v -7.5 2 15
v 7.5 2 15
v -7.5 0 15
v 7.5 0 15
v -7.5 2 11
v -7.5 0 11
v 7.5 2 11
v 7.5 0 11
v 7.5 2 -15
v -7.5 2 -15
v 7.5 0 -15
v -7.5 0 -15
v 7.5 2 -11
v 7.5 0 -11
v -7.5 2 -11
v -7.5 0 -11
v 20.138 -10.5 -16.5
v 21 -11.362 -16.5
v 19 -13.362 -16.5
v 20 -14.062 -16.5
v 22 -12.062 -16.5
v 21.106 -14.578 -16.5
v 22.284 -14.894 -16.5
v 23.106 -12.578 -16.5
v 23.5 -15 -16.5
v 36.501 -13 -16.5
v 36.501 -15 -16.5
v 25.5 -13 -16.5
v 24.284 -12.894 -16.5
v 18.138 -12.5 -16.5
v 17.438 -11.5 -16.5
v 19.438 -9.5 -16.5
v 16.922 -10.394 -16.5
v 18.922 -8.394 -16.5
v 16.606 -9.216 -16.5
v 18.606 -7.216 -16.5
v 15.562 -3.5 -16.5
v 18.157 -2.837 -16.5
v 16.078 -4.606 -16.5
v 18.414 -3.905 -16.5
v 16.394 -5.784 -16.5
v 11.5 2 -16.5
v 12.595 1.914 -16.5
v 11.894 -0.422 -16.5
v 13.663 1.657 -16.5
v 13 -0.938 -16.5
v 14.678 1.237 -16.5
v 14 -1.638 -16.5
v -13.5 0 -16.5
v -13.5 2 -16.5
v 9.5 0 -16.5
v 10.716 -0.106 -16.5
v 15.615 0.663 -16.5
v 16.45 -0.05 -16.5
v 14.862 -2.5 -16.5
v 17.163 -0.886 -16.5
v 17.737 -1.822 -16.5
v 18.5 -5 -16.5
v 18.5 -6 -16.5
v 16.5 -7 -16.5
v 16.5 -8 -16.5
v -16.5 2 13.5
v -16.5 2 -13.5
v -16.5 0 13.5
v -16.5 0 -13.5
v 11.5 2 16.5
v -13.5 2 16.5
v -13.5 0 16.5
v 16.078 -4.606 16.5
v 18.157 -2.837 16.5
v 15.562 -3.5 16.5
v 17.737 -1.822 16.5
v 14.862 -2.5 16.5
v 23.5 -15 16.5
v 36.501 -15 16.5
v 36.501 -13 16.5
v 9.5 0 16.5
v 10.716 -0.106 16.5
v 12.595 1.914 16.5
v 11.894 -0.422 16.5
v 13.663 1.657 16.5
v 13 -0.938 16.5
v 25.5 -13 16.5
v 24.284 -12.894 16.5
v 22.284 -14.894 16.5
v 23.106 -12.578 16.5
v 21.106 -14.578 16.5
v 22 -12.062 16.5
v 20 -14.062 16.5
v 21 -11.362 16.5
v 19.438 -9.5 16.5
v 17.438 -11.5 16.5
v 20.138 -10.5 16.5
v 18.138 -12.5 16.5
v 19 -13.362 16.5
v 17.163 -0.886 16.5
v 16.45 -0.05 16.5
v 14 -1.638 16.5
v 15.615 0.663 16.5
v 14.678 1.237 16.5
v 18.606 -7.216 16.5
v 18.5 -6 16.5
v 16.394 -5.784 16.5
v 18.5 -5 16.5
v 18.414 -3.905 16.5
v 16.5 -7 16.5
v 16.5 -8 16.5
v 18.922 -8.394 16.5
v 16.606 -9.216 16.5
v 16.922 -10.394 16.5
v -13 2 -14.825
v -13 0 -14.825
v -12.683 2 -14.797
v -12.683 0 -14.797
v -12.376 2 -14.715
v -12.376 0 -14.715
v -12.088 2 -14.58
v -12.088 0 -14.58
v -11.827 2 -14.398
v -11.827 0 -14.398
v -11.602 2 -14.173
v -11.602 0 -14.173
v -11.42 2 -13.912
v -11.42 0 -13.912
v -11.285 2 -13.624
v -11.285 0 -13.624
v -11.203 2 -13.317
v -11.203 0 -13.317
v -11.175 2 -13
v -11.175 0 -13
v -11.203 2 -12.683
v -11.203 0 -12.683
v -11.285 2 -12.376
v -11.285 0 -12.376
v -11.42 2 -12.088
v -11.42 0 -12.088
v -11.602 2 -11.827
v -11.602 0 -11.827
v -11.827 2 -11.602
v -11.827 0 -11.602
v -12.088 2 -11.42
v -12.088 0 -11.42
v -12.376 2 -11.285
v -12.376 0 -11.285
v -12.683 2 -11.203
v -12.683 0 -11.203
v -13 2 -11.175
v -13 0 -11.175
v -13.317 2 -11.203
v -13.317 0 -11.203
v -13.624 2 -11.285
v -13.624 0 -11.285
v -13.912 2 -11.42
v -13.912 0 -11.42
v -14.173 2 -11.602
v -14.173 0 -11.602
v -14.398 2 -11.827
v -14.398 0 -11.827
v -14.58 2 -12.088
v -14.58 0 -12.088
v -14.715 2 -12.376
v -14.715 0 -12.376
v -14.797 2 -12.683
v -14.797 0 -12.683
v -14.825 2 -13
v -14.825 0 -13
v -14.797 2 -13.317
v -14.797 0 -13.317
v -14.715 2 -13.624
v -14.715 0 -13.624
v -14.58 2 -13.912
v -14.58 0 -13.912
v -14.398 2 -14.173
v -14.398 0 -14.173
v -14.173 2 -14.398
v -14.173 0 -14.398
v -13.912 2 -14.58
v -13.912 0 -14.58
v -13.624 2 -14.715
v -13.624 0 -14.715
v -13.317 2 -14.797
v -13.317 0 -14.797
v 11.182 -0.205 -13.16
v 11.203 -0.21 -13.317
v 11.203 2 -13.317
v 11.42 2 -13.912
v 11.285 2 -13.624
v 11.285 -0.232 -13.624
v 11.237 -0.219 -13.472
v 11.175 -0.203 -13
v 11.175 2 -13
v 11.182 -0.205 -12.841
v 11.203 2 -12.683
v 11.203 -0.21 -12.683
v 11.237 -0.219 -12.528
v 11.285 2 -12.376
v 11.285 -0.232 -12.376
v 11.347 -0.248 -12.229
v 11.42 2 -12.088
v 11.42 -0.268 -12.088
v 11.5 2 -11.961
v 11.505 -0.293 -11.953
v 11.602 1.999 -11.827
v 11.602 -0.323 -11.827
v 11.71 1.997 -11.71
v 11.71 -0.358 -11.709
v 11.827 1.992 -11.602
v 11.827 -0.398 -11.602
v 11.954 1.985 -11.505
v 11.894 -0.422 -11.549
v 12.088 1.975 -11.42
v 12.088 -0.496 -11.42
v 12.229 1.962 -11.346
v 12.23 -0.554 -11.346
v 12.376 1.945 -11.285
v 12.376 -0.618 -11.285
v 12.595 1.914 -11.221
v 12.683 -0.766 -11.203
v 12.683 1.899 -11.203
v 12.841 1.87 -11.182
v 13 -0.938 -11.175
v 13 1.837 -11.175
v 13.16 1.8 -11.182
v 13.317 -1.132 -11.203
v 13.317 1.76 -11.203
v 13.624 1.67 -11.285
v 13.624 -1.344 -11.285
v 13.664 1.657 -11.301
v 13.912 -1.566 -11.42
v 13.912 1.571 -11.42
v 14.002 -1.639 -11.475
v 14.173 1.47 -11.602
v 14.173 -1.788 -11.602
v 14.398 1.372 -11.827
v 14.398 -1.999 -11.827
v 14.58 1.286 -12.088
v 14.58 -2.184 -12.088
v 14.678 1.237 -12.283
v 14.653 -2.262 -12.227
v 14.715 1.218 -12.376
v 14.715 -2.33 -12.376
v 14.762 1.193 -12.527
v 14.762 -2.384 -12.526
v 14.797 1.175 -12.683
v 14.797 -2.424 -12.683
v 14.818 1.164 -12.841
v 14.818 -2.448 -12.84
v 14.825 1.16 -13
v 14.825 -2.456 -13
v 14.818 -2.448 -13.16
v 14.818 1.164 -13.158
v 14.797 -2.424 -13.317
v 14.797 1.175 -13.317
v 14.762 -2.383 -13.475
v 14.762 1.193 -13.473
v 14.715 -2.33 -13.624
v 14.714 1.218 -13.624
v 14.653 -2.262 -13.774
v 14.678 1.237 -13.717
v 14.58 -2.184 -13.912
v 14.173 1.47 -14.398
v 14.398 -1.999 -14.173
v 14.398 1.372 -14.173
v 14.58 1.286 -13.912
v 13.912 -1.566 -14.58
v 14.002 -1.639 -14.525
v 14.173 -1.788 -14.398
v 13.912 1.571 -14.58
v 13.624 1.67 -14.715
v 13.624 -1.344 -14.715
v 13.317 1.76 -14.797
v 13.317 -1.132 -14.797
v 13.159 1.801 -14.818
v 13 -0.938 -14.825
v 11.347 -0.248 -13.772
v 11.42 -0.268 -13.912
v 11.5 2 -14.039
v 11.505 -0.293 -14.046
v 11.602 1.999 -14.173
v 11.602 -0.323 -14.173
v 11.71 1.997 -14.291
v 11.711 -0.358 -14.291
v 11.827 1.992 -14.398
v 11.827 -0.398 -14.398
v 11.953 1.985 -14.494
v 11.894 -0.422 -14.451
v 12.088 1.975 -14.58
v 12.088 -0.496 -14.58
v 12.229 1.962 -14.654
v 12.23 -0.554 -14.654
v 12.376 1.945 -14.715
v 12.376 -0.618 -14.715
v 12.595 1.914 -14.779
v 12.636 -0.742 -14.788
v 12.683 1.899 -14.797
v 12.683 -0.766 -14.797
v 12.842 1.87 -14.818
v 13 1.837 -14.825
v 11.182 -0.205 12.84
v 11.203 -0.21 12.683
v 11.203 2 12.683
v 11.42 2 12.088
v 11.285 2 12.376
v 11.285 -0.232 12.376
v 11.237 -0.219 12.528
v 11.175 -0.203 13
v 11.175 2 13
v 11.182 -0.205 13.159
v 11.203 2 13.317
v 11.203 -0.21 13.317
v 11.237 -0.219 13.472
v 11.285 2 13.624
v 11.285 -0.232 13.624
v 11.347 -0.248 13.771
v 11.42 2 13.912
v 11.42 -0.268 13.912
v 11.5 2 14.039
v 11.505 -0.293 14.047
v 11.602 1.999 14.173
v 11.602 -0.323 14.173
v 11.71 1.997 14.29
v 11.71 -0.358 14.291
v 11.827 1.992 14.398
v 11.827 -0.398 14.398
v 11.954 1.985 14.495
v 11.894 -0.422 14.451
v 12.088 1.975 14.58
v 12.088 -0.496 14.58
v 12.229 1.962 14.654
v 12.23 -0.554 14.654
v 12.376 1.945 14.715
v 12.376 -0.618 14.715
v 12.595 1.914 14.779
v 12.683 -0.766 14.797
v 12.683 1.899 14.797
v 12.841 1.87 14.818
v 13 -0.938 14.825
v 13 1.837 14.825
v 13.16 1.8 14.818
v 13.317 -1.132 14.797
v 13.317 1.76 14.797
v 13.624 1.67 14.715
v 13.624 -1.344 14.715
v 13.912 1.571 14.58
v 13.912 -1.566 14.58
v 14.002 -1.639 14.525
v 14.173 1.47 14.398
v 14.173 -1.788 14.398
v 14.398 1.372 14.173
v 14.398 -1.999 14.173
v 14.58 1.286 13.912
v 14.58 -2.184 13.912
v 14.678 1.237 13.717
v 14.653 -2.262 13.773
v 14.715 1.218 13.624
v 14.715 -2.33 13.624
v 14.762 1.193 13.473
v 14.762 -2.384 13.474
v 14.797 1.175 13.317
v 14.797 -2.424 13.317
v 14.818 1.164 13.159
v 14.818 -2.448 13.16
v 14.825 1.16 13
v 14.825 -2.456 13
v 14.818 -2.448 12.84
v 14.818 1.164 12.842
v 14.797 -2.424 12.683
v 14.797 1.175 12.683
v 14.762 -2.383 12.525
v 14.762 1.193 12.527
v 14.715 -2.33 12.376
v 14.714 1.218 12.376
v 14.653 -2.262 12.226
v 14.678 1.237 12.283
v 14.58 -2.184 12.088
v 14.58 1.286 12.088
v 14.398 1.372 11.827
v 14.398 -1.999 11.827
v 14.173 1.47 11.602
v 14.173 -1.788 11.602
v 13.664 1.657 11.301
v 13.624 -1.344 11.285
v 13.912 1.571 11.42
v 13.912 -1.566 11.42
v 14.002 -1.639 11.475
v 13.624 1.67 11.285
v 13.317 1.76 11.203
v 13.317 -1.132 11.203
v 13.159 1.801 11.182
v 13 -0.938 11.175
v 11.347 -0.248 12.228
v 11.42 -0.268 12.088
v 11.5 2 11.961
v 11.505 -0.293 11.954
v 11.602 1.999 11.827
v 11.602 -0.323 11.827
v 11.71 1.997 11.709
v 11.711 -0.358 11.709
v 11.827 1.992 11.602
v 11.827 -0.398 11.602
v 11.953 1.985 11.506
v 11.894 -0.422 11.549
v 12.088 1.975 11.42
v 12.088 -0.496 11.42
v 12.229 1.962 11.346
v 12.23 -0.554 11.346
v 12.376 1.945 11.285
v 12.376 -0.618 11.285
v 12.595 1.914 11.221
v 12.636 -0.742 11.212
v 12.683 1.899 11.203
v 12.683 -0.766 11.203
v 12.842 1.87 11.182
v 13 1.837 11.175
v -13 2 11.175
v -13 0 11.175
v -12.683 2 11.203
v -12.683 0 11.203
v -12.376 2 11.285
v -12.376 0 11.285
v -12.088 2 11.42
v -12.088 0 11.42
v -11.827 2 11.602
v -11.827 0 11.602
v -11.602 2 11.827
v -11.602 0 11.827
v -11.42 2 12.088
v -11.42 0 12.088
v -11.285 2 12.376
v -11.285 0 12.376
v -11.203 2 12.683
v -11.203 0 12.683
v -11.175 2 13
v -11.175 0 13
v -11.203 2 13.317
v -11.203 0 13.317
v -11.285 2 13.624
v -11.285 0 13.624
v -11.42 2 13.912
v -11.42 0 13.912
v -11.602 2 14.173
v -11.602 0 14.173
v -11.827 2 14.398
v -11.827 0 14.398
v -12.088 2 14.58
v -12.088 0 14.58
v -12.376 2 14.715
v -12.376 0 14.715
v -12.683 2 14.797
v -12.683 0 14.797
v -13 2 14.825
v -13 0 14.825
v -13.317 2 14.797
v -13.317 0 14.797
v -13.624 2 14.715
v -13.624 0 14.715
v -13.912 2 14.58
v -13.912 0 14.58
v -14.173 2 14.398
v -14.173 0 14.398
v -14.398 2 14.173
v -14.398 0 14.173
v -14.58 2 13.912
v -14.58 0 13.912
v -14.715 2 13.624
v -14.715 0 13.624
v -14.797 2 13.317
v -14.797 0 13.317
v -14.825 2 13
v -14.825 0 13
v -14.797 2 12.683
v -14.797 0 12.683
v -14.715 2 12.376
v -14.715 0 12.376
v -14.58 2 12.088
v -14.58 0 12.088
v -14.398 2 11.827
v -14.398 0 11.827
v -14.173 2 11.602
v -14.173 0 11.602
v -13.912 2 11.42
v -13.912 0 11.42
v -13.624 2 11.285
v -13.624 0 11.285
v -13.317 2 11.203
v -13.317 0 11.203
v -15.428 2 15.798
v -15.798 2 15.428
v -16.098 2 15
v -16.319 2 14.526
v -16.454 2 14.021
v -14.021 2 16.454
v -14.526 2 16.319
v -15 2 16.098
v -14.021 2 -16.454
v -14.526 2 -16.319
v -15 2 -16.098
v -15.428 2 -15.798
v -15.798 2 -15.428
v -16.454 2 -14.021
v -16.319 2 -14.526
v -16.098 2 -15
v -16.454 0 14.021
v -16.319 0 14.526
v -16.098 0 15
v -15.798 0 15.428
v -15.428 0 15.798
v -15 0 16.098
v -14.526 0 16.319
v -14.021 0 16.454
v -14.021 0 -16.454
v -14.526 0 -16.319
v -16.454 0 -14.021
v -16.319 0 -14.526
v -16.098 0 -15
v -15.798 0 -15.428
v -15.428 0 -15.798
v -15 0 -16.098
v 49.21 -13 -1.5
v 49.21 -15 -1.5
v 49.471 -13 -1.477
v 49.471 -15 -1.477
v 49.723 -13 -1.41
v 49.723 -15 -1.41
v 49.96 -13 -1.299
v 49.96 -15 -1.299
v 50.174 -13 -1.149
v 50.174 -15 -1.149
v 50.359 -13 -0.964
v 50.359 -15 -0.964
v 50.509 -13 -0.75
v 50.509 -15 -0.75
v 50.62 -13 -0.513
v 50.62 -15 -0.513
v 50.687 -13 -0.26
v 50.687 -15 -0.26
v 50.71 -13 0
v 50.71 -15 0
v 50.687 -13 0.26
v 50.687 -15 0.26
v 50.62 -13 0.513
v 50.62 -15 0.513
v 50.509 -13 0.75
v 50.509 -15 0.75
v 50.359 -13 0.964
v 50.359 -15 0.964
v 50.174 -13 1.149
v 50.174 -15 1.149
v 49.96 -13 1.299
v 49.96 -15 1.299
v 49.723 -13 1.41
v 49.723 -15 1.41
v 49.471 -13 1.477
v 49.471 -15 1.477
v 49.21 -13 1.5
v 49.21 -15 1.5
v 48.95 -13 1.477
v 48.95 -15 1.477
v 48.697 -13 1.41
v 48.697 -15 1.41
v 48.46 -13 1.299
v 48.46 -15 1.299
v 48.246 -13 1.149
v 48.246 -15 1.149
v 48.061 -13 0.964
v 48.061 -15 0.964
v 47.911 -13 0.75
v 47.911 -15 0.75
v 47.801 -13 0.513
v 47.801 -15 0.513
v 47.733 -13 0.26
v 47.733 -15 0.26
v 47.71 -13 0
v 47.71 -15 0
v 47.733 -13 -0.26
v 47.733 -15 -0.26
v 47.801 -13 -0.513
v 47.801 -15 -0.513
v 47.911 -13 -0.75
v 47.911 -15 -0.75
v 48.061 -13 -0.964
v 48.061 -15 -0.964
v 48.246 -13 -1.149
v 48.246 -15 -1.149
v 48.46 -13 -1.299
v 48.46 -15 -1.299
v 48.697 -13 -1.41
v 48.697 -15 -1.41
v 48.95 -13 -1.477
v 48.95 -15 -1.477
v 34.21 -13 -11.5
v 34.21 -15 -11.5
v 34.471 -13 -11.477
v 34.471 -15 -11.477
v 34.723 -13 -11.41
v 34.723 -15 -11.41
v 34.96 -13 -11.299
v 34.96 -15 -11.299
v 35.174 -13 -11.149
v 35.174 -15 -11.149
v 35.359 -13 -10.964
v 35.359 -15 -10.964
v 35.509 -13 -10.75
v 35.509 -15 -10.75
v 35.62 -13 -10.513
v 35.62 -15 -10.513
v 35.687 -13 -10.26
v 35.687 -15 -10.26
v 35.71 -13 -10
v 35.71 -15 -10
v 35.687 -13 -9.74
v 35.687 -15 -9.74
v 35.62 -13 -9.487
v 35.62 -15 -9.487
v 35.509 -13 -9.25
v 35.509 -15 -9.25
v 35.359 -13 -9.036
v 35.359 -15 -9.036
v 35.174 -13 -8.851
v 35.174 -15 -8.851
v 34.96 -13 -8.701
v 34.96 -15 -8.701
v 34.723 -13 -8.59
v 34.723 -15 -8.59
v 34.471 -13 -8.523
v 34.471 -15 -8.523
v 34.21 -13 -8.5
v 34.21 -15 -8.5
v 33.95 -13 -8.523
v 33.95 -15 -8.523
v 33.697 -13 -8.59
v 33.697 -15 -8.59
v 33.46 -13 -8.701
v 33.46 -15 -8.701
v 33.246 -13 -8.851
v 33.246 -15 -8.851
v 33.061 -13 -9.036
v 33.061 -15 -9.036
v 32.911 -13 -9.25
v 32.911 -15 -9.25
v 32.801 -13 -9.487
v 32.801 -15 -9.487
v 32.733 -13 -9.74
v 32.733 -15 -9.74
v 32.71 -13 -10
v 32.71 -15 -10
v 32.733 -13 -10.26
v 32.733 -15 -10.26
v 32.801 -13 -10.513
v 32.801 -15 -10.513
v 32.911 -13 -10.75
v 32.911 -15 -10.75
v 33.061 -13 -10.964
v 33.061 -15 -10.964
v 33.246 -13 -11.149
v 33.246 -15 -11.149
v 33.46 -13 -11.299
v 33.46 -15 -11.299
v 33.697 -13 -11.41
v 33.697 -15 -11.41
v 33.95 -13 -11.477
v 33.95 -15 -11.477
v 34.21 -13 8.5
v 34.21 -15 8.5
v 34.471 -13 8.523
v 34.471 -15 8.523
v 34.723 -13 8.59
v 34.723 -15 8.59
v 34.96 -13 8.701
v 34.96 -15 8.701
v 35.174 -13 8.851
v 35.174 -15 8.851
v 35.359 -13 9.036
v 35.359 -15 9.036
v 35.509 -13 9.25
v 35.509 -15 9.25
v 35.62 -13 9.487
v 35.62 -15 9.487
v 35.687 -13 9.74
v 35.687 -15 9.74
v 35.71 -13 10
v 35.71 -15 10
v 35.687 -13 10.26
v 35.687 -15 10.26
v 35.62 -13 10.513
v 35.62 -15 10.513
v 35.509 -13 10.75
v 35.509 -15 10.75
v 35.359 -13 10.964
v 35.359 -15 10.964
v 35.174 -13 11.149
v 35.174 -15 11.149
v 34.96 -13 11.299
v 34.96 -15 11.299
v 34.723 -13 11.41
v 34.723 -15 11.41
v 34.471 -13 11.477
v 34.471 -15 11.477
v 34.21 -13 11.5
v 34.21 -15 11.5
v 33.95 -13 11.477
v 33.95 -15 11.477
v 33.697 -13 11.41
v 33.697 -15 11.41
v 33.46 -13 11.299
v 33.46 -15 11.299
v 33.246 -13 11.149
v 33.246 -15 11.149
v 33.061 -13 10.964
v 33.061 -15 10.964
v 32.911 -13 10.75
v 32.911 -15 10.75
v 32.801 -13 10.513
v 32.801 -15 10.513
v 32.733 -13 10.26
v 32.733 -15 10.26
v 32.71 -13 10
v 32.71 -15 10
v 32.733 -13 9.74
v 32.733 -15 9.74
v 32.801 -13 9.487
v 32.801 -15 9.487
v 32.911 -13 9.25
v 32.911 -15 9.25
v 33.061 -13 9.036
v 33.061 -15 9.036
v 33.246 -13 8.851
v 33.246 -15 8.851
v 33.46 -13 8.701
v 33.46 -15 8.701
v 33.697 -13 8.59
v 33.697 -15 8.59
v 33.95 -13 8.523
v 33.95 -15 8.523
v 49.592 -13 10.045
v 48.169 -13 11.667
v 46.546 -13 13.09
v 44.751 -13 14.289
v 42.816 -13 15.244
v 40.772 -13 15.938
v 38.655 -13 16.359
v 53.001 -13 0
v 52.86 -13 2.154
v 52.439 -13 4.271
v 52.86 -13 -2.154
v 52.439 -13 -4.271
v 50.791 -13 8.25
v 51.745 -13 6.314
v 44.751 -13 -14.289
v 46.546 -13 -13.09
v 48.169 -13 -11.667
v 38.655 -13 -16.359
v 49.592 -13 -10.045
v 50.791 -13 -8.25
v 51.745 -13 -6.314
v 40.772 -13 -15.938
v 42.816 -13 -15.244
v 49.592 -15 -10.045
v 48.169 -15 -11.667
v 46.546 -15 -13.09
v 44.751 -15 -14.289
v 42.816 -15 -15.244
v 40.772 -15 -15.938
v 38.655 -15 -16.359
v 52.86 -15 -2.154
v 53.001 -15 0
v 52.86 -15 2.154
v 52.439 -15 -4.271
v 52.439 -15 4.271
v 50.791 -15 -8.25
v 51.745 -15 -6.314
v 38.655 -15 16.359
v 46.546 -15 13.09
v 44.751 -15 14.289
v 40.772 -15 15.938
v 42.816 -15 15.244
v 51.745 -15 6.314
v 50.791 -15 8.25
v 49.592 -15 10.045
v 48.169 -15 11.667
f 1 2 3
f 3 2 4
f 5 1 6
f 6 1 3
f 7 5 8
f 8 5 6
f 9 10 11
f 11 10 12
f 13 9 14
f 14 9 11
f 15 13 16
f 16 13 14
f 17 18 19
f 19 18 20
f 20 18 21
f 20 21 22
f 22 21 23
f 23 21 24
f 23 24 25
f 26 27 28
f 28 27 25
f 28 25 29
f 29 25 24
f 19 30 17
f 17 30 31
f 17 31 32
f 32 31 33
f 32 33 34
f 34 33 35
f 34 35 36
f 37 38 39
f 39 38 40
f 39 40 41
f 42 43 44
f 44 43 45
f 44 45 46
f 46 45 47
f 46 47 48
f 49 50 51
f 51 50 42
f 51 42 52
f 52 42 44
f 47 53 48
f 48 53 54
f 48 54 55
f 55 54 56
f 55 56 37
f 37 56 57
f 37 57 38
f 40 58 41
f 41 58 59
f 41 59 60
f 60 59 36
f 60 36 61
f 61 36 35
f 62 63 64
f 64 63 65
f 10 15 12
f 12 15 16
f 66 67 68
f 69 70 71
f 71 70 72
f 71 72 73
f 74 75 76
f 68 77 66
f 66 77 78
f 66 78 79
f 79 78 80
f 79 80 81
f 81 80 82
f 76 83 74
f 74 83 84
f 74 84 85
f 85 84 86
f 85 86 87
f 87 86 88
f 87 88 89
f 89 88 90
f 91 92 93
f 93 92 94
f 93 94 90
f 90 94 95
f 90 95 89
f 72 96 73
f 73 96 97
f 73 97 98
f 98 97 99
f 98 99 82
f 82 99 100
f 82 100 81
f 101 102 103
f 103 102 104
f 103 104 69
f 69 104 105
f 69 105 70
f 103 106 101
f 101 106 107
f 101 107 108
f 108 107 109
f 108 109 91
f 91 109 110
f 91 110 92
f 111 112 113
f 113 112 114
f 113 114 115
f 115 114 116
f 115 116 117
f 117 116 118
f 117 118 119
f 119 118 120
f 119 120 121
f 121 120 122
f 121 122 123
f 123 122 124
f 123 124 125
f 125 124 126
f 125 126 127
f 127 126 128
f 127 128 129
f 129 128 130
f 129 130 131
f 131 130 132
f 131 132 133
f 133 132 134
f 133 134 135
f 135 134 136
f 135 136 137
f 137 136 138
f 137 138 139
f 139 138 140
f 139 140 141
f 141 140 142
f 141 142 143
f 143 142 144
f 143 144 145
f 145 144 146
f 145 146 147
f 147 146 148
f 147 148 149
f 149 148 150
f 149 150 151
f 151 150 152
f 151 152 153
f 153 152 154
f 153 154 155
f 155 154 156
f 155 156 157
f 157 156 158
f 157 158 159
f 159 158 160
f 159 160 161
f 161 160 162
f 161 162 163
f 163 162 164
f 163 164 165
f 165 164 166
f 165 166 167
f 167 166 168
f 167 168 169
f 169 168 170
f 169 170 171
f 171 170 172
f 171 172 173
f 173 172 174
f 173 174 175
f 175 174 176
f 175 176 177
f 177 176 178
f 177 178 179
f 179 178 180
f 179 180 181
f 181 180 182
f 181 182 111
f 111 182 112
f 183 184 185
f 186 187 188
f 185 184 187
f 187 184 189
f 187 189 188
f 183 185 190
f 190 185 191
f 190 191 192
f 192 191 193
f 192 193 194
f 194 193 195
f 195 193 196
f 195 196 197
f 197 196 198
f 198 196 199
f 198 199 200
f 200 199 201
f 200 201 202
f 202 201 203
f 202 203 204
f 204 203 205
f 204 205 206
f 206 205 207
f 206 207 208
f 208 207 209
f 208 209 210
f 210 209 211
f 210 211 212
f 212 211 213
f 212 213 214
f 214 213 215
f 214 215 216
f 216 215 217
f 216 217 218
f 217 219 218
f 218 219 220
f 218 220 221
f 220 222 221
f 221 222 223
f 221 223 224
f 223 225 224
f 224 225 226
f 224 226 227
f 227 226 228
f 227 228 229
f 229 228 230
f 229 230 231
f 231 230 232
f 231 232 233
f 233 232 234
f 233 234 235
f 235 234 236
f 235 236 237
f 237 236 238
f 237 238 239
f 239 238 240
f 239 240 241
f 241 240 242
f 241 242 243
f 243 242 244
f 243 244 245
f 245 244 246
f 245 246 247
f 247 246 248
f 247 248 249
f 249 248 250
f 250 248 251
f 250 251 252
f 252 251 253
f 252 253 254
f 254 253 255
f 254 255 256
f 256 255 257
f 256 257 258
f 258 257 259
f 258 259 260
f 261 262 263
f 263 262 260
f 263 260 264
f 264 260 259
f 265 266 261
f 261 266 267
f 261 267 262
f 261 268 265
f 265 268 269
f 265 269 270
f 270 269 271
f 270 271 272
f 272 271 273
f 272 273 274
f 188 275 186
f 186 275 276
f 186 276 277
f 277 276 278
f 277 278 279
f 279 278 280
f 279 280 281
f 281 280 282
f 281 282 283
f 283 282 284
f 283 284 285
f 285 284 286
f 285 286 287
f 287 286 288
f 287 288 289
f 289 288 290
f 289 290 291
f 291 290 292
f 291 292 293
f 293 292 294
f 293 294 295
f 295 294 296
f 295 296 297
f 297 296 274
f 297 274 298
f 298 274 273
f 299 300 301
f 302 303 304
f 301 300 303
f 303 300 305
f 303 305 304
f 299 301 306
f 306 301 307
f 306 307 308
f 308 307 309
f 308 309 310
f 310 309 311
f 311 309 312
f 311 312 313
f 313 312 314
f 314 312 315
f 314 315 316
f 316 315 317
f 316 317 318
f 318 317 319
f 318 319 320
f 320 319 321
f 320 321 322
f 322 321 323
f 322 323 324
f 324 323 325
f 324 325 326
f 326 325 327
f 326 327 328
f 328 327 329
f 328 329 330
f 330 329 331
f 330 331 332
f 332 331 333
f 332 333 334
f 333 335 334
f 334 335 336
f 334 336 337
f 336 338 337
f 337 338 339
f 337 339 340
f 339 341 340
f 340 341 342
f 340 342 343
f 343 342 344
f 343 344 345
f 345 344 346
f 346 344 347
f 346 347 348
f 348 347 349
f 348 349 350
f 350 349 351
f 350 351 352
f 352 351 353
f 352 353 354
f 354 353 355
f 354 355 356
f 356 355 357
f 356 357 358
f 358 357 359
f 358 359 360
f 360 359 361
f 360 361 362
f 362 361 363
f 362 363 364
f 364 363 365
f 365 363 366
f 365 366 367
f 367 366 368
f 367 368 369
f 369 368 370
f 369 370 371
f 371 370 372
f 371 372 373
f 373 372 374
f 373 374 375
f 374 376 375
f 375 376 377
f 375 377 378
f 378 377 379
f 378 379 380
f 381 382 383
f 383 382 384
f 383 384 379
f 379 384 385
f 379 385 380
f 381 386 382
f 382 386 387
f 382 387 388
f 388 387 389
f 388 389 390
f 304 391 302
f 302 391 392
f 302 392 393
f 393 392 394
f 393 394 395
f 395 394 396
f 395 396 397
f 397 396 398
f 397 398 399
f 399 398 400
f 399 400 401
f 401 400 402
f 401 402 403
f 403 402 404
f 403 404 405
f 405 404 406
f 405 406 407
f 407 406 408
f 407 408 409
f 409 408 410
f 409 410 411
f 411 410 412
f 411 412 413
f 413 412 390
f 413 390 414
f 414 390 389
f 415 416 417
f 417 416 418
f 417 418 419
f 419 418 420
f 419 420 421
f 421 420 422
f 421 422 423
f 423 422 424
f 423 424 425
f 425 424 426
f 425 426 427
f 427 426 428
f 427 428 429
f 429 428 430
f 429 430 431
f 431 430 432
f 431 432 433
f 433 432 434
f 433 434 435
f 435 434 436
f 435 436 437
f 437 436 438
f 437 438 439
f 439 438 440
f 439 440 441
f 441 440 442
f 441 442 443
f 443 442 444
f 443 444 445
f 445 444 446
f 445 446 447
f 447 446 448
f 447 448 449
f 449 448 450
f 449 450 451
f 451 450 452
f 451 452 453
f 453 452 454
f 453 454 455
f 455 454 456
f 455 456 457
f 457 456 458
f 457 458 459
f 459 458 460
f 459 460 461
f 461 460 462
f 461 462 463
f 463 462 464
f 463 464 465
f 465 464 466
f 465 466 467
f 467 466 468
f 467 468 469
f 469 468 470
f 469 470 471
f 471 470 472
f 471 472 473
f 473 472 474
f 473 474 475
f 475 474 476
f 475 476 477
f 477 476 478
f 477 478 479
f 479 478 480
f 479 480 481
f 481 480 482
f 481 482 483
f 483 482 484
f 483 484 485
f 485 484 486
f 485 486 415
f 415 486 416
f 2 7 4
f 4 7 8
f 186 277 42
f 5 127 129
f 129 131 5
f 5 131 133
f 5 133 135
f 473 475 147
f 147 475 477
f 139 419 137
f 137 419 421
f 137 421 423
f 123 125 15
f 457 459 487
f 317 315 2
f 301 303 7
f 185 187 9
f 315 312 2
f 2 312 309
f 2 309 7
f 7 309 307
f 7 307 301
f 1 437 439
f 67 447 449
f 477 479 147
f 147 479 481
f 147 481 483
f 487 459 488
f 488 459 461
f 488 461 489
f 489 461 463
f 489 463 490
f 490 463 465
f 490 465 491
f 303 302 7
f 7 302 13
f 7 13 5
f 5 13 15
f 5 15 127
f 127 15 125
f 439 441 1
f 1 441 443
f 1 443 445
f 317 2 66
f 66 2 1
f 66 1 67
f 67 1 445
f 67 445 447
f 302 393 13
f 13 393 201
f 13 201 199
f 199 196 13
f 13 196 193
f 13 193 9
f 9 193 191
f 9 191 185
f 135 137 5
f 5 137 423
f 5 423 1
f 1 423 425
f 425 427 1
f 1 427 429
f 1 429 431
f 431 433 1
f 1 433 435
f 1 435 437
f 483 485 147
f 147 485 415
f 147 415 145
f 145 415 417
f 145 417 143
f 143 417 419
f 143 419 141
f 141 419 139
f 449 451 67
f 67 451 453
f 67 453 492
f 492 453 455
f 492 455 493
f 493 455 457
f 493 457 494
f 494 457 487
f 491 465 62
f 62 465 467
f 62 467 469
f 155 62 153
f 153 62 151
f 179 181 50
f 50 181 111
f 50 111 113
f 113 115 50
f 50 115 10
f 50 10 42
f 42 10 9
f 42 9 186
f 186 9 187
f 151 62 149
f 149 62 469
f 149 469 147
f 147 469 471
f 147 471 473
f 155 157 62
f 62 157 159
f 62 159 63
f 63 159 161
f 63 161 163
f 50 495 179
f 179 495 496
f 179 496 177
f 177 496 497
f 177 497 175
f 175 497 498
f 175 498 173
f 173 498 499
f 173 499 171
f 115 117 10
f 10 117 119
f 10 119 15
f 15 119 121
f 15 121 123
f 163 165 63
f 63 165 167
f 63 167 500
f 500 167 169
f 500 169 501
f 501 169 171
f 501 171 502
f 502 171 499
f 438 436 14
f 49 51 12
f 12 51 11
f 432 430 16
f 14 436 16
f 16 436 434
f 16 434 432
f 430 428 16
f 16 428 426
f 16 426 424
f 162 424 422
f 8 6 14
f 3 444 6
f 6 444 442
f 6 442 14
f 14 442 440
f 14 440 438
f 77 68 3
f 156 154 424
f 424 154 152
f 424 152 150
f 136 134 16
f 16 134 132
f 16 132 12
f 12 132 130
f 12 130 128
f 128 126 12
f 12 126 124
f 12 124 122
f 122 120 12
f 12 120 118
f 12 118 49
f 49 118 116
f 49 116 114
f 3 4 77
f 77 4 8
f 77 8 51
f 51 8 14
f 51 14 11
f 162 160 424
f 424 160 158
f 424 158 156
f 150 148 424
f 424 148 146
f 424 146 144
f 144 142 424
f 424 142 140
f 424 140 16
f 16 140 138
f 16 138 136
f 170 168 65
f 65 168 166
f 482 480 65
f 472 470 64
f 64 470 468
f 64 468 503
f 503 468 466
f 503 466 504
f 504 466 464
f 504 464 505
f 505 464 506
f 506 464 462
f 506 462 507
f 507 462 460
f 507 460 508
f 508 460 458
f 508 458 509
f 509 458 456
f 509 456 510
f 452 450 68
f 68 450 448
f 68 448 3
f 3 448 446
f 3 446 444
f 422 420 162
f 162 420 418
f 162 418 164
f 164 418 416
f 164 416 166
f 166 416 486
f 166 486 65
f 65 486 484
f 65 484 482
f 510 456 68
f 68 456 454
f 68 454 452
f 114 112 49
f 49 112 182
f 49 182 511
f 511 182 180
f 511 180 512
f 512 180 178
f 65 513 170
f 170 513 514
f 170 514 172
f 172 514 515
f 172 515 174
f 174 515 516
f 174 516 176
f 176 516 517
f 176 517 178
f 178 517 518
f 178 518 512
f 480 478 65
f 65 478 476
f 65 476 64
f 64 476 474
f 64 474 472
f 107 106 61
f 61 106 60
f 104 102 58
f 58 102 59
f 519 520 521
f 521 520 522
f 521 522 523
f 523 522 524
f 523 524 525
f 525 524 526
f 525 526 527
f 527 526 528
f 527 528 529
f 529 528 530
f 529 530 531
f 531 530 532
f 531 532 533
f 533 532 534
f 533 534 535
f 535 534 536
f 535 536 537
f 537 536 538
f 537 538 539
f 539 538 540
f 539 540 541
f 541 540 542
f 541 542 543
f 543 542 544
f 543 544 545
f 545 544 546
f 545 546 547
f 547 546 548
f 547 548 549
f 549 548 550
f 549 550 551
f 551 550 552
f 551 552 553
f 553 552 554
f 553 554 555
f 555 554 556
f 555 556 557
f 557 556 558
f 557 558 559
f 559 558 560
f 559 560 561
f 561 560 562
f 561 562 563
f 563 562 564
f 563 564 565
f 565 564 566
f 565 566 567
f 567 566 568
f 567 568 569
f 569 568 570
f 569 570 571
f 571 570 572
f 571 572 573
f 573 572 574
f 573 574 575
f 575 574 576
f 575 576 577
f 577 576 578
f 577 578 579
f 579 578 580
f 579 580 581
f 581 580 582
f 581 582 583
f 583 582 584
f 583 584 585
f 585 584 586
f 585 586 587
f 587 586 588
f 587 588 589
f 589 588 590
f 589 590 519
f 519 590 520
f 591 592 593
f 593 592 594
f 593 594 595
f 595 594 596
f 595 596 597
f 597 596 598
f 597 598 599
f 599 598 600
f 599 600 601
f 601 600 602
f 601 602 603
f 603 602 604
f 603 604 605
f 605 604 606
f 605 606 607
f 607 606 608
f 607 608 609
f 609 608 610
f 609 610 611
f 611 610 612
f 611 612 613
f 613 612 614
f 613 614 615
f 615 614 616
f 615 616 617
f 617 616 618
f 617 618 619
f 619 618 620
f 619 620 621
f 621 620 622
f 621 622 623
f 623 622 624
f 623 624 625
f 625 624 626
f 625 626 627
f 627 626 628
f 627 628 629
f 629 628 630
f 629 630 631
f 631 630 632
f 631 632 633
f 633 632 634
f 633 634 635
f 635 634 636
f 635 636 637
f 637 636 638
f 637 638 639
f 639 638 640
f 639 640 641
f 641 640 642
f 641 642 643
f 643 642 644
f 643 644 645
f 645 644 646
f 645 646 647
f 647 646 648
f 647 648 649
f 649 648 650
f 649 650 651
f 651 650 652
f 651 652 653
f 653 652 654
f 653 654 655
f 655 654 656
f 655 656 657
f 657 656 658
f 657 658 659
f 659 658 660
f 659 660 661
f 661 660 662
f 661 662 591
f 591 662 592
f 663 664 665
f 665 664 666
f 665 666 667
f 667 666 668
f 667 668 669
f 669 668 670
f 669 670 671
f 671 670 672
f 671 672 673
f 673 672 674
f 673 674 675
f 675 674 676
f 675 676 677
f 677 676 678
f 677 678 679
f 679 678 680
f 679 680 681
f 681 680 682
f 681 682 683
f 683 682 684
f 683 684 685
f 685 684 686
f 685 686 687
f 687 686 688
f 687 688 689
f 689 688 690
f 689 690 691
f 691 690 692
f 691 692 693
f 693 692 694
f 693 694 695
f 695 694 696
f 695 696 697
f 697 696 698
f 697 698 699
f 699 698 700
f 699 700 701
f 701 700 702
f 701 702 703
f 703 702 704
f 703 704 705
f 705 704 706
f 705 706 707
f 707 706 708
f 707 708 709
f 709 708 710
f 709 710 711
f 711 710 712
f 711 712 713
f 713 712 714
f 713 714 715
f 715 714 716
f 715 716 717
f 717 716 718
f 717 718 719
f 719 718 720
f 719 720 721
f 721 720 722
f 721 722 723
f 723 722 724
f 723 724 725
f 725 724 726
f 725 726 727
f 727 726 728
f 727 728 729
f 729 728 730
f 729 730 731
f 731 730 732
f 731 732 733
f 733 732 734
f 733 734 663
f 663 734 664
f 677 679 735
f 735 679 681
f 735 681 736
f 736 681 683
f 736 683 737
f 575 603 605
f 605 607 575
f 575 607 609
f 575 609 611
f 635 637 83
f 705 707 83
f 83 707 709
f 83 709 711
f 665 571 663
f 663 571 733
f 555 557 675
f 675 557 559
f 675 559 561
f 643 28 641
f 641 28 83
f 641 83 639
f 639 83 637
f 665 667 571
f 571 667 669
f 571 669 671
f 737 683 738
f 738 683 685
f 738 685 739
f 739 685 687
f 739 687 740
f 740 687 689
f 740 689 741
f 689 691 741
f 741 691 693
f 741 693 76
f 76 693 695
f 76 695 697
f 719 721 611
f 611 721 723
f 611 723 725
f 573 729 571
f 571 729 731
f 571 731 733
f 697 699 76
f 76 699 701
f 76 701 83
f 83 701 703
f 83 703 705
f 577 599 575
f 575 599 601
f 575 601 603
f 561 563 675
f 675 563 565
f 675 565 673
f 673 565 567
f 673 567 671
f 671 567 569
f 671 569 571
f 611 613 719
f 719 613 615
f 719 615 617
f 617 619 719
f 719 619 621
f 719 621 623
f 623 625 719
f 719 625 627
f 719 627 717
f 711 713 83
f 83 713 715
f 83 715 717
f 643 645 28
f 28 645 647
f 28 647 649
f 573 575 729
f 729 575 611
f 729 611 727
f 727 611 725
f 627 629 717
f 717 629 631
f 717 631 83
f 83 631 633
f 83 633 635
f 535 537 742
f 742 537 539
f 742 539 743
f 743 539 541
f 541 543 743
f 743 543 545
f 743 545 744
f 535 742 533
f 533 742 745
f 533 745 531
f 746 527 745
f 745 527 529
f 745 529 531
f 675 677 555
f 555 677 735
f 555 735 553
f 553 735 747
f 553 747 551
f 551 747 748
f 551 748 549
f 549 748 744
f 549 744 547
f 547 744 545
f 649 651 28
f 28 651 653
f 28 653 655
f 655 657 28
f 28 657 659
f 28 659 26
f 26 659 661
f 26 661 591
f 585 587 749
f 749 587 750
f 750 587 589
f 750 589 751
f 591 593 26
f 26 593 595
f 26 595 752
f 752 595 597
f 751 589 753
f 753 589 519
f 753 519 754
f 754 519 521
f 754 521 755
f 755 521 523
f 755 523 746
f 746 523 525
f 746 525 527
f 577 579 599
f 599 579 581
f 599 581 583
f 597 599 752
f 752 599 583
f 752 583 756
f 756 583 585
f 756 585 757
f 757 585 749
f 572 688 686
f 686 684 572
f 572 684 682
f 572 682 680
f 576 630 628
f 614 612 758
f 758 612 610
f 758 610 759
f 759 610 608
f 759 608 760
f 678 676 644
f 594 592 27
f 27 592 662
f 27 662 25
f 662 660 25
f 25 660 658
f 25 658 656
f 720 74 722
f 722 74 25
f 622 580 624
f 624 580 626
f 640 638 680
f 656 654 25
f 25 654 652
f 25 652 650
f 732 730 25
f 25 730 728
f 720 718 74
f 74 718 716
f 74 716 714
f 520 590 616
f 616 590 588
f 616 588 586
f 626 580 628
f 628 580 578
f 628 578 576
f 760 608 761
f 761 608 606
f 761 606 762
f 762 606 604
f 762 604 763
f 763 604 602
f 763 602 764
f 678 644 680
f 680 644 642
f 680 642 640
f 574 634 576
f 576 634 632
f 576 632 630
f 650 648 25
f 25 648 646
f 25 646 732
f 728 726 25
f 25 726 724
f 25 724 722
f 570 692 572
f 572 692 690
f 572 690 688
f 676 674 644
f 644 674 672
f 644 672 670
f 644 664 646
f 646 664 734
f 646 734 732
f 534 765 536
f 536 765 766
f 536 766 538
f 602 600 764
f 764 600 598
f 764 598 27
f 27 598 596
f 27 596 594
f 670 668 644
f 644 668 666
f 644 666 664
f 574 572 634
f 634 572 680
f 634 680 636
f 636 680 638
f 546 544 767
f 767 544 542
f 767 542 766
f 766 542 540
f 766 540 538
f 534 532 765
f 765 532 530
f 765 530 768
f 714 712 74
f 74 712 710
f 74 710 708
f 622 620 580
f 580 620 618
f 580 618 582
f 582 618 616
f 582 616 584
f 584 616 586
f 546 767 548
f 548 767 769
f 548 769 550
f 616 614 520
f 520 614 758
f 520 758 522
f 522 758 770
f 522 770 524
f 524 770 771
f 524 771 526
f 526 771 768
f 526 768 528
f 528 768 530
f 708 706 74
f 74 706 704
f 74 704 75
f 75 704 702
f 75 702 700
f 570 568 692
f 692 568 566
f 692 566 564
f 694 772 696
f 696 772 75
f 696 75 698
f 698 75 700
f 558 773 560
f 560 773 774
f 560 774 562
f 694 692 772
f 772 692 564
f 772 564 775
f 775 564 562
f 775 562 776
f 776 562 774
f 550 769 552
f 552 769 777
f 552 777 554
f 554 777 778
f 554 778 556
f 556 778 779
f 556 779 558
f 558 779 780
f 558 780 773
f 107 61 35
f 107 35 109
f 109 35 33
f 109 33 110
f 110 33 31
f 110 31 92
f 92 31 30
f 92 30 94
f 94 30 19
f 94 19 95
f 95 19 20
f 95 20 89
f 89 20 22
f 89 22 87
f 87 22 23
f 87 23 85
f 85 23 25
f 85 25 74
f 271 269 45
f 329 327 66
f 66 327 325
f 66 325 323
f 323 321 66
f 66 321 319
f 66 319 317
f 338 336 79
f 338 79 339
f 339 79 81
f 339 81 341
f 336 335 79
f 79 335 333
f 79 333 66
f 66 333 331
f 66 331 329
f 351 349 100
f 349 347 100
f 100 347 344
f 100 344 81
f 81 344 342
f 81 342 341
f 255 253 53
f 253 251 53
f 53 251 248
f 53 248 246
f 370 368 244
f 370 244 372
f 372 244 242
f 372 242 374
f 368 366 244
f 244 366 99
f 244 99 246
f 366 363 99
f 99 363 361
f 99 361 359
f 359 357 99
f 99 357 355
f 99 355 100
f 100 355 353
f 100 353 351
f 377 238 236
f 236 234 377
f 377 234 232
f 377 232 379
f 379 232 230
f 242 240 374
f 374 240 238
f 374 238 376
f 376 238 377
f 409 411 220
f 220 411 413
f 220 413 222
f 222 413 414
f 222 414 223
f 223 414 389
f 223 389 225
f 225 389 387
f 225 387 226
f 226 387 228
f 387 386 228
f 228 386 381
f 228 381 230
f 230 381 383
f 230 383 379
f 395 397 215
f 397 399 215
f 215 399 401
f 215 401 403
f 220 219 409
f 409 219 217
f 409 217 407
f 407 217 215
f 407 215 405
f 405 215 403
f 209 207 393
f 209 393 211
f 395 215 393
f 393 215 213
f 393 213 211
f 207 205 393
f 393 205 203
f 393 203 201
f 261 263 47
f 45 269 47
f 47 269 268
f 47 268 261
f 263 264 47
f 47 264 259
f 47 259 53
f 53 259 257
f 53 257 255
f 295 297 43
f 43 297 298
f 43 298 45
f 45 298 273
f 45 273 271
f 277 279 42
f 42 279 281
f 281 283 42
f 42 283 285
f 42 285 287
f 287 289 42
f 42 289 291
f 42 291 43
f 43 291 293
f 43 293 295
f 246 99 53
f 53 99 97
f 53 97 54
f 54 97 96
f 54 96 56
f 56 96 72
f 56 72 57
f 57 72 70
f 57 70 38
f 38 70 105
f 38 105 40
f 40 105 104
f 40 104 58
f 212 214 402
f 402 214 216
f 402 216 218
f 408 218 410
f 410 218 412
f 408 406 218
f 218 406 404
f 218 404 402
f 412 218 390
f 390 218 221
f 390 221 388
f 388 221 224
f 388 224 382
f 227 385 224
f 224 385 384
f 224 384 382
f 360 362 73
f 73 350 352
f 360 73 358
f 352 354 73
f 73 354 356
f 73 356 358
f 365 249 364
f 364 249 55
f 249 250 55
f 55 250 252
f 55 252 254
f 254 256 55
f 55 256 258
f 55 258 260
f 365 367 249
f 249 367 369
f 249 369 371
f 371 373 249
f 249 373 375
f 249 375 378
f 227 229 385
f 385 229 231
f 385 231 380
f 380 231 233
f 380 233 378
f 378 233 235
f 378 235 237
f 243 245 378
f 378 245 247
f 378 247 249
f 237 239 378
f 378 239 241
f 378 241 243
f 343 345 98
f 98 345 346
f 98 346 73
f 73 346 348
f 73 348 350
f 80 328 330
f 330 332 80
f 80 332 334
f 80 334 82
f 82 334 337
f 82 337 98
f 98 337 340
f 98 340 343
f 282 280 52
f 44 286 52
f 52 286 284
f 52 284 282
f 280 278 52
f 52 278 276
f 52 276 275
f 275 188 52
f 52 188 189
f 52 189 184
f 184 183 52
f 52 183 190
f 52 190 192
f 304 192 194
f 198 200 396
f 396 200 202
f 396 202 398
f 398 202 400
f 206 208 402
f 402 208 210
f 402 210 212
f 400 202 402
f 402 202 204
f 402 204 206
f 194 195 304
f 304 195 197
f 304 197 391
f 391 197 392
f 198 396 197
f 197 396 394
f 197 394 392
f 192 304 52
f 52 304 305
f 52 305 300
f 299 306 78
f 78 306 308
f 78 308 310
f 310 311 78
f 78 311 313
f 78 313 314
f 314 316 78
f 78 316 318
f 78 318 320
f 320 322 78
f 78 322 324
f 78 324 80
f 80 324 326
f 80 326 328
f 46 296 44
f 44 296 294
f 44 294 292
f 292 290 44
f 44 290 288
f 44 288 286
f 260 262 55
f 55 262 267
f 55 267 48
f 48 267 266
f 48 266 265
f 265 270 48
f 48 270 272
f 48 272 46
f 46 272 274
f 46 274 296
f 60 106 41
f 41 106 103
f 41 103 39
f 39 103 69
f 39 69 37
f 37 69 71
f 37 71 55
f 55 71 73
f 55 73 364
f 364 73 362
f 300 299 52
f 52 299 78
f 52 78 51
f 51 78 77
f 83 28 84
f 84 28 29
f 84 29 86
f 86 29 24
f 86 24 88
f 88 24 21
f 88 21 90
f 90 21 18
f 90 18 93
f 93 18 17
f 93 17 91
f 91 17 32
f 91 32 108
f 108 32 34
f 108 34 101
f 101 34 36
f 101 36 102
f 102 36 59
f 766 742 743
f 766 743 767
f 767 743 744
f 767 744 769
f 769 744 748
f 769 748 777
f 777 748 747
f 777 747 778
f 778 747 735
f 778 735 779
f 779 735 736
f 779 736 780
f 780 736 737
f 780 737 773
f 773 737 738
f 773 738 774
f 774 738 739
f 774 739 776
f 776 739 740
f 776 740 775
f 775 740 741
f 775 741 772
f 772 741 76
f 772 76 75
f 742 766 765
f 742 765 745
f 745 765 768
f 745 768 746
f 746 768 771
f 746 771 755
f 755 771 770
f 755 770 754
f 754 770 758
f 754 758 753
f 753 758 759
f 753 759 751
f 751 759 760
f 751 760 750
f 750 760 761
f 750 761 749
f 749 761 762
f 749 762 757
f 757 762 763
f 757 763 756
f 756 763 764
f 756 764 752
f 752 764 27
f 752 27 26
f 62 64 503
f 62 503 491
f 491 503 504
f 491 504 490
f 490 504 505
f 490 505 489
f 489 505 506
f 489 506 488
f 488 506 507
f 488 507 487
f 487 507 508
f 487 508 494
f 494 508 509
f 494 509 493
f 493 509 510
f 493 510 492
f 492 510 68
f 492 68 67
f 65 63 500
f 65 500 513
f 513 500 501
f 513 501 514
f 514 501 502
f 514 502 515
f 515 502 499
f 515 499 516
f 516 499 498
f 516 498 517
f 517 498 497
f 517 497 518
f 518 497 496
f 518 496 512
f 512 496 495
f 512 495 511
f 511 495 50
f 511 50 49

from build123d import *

# Parameters (mm, degrees)
SKETCH1_W                = 33
SKETCH1_H                = 33
SKETCH1_R                = 1.824627508
SKETCH1_W_2              = 15
SKETCH1_H_2              = 4
BOSS_EXTRUDE1_DEPTH      = 2
SKETCH2_W                = 36.501337607
SKETCH2_H                = 33
SKETCH2_R                = 1.5
BOSS_EXTRUDE2_DEPTH      = 2
BOSS_EXTRUDE3_DEPTH      = 2
BOSS_EXTRUDE3_DEPTH_BACK = 15
SKETCH1_3_W              = 2
SKETCH1_3_H              = 33
FILLET1_R                = 7
FILLET2_R                = 16.5
FILLET3_R                = 3


# Some blends are built 0.0001 mm under size
with BuildPart() as part:
    # Sketch1 → Boss-Extrude1 (new body)
    with BuildSketch(Plane(origin=(0, 0, 0), x_dir=(1, 0, 0), z_dir=(0, 1, 0))):
        Rectangle(SKETCH1_W, SKETCH1_H)
        with Locations(Location((-13, -13, 0), (0, 0, 270))):
            Circle(SKETCH1_R, mode=Mode.SUBTRACT)
        with Locations(Location((13, -13, 0), (0, 0, 270))):
            Circle(SKETCH1_R, mode=Mode.SUBTRACT)
        with Locations(Location((13, 13, 0), (0, 0, 270))):
            Circle(SKETCH1_R, mode=Mode.SUBTRACT)
        with Locations(Location((-13, 13, 0), (0, 0, 270))):
            Circle(SKETCH1_R, mode=Mode.SUBTRACT)
        with Locations((0, 13)):
            Rectangle(SKETCH1_W_2, SKETCH1_H_2, mode=Mode.SUBTRACT)
        with Locations((0, -13)):
            Rectangle(SKETCH1_W_2, SKETCH1_H_2, mode=Mode.SUBTRACT)
    extrude(amount=BOSS_EXTRUDE1_DEPTH)



with BuildPart() as body_2:
    # Sketch2 → Boss-Extrude2 (new body)
    with BuildSketch(Plane(origin=(0, -15, 0), x_dir=(1, 0, 0), z_dir=(0, 1, 0))):
        with Locations((34.750668804, 0)):
            Rectangle(SKETCH2_W, SKETCH2_H)
        with Locations(Location((34.210179074, 10, 0), (0, 0, 270))):
            Circle(SKETCH2_R, mode=Mode.SUBTRACT)
        with Locations(Location((49.210179074, 0, 0), (0, 0, 270))):
            Circle(SKETCH2_R, mode=Mode.SUBTRACT)
        with Locations(Location((34.210179074, -10, 0), (0, 0, 270))):
            Circle(SKETCH2_R, mode=Mode.SUBTRACT)
    extrude(amount=BOSS_EXTRUDE2_DEPTH)


with BuildPart() as part_1:
    add(part.part)

    add(body_2.part)  # Boss-Extrude3 merges body 2
    # Sketch1<3> → Boss-Extrude3 (add, two sides: drawn at the far end of the back side and taken through both)
    with BuildSketch(Plane(origin=(0, 0, 0), x_dir=(1, 0, 0), z_dir=(0, 1, 0)).offset(-BOSS_EXTRUDE3_DEPTH_BACK)):
        with Locations((17.5, 0)):
            Rectangle(SKETCH1_3_W, SKETCH1_3_H)
    extrude(amount=BOSS_EXTRUDE3_DEPTH + BOSS_EXTRUDE3_DEPTH_BACK)

    # Fillet1
    # the kernel refuses this fillet: 7 mm, written as the material it adds along each edge
    with BuildSketch(Plane(origin=(16.5, 0, -16.5), x_dir=(0, -1, 0), z_dir=(0, 0, 1))) as fillet1_piece_1_section:
        with BuildLine():
            CenterArc((FILLET1_R, -FILLET1_R), FILLET1_R, 90, 90)
            Line((0, -FILLET1_R), (0, 0))
            Line((0, 0), (FILLET1_R, 0))
        make_face()
    fillet1_piece_1 = extrude(amount=33, mode=Mode.PRIVATE)
    fillet1_piece_1 = fillet1_piece_1 - Plane(origin=(13, -1.648536781, -13), x_dir=(0, 0, 1), z_dir=(0, -1, 0)) * Cylinder(1.824627508, 94, mode=Mode.PRIVATE)
    fillet1_piece_1 = fillet1_piece_1 - Plane(origin=(13, -1.648536781, 13), x_dir=(0, 0, 1), z_dir=(0, -1, 0)) * Cylinder(1.824627508, 94, mode=Mode.PRIVATE)
    add(fillet1_piece_1)
    with BuildSketch(Plane(origin=(18.5, -13, 16.5), x_dir=(0, 1, 0), z_dir=(0, 0, -1))) as fillet1_piece_2:
        with BuildLine():
            CenterArc((FILLET1_R, FILLET1_R), FILLET1_R, 180, 90)
            Line((0, FILLET1_R), (0, 0))
            Line((0, 0), (FILLET1_R, 0))
        make_face()
    extrude(amount=33)
    # the kernel refuses this fillet: 7 mm, written as the material it takes off along each edge
    with BuildSketch(Plane(origin=(18.5, 2, 34), x_dir=(-1, 0, 0), z_dir=(0, 0, -1)), Plane(origin=(16.5, -15, 34), x_dir=(1, 0, 0), z_dir=(0, 0, -1))) as fillet1_2_piece_1:
        with BuildLine():
            CenterArc((FILLET1_R, -FILLET1_R), FILLET1_R, 90, 90)
            Line((0, -FILLET1_R), (0, 0))
            Line((0, 0), (FILLET1_R, 0))
        make_face()
    extrude(amount=68, mode=Mode.SUBTRACT)

    # Fillet2
    fillet2_edges = [part_1.edges().sort_by_distance(p)[0] for p in [
        (53.001337607, -14, -16.5),
        (53.001337607, -14, 16.5),
    ]]
    fillet(fillet2_edges, radius=FILLET2_R - 0.0001)  # a hair under: the kernel refuses the full size

    # Fillet3
    fillet3_edges = [part_1.edges().sort_by_distance(p)[0] for p in [
        (-16.5, 1, 16.5),
        (-16.5, 1, -16.5),
    ]]
    fillet(fillet3_edges, radius=FILLET3_R)


solid = part_1.part
